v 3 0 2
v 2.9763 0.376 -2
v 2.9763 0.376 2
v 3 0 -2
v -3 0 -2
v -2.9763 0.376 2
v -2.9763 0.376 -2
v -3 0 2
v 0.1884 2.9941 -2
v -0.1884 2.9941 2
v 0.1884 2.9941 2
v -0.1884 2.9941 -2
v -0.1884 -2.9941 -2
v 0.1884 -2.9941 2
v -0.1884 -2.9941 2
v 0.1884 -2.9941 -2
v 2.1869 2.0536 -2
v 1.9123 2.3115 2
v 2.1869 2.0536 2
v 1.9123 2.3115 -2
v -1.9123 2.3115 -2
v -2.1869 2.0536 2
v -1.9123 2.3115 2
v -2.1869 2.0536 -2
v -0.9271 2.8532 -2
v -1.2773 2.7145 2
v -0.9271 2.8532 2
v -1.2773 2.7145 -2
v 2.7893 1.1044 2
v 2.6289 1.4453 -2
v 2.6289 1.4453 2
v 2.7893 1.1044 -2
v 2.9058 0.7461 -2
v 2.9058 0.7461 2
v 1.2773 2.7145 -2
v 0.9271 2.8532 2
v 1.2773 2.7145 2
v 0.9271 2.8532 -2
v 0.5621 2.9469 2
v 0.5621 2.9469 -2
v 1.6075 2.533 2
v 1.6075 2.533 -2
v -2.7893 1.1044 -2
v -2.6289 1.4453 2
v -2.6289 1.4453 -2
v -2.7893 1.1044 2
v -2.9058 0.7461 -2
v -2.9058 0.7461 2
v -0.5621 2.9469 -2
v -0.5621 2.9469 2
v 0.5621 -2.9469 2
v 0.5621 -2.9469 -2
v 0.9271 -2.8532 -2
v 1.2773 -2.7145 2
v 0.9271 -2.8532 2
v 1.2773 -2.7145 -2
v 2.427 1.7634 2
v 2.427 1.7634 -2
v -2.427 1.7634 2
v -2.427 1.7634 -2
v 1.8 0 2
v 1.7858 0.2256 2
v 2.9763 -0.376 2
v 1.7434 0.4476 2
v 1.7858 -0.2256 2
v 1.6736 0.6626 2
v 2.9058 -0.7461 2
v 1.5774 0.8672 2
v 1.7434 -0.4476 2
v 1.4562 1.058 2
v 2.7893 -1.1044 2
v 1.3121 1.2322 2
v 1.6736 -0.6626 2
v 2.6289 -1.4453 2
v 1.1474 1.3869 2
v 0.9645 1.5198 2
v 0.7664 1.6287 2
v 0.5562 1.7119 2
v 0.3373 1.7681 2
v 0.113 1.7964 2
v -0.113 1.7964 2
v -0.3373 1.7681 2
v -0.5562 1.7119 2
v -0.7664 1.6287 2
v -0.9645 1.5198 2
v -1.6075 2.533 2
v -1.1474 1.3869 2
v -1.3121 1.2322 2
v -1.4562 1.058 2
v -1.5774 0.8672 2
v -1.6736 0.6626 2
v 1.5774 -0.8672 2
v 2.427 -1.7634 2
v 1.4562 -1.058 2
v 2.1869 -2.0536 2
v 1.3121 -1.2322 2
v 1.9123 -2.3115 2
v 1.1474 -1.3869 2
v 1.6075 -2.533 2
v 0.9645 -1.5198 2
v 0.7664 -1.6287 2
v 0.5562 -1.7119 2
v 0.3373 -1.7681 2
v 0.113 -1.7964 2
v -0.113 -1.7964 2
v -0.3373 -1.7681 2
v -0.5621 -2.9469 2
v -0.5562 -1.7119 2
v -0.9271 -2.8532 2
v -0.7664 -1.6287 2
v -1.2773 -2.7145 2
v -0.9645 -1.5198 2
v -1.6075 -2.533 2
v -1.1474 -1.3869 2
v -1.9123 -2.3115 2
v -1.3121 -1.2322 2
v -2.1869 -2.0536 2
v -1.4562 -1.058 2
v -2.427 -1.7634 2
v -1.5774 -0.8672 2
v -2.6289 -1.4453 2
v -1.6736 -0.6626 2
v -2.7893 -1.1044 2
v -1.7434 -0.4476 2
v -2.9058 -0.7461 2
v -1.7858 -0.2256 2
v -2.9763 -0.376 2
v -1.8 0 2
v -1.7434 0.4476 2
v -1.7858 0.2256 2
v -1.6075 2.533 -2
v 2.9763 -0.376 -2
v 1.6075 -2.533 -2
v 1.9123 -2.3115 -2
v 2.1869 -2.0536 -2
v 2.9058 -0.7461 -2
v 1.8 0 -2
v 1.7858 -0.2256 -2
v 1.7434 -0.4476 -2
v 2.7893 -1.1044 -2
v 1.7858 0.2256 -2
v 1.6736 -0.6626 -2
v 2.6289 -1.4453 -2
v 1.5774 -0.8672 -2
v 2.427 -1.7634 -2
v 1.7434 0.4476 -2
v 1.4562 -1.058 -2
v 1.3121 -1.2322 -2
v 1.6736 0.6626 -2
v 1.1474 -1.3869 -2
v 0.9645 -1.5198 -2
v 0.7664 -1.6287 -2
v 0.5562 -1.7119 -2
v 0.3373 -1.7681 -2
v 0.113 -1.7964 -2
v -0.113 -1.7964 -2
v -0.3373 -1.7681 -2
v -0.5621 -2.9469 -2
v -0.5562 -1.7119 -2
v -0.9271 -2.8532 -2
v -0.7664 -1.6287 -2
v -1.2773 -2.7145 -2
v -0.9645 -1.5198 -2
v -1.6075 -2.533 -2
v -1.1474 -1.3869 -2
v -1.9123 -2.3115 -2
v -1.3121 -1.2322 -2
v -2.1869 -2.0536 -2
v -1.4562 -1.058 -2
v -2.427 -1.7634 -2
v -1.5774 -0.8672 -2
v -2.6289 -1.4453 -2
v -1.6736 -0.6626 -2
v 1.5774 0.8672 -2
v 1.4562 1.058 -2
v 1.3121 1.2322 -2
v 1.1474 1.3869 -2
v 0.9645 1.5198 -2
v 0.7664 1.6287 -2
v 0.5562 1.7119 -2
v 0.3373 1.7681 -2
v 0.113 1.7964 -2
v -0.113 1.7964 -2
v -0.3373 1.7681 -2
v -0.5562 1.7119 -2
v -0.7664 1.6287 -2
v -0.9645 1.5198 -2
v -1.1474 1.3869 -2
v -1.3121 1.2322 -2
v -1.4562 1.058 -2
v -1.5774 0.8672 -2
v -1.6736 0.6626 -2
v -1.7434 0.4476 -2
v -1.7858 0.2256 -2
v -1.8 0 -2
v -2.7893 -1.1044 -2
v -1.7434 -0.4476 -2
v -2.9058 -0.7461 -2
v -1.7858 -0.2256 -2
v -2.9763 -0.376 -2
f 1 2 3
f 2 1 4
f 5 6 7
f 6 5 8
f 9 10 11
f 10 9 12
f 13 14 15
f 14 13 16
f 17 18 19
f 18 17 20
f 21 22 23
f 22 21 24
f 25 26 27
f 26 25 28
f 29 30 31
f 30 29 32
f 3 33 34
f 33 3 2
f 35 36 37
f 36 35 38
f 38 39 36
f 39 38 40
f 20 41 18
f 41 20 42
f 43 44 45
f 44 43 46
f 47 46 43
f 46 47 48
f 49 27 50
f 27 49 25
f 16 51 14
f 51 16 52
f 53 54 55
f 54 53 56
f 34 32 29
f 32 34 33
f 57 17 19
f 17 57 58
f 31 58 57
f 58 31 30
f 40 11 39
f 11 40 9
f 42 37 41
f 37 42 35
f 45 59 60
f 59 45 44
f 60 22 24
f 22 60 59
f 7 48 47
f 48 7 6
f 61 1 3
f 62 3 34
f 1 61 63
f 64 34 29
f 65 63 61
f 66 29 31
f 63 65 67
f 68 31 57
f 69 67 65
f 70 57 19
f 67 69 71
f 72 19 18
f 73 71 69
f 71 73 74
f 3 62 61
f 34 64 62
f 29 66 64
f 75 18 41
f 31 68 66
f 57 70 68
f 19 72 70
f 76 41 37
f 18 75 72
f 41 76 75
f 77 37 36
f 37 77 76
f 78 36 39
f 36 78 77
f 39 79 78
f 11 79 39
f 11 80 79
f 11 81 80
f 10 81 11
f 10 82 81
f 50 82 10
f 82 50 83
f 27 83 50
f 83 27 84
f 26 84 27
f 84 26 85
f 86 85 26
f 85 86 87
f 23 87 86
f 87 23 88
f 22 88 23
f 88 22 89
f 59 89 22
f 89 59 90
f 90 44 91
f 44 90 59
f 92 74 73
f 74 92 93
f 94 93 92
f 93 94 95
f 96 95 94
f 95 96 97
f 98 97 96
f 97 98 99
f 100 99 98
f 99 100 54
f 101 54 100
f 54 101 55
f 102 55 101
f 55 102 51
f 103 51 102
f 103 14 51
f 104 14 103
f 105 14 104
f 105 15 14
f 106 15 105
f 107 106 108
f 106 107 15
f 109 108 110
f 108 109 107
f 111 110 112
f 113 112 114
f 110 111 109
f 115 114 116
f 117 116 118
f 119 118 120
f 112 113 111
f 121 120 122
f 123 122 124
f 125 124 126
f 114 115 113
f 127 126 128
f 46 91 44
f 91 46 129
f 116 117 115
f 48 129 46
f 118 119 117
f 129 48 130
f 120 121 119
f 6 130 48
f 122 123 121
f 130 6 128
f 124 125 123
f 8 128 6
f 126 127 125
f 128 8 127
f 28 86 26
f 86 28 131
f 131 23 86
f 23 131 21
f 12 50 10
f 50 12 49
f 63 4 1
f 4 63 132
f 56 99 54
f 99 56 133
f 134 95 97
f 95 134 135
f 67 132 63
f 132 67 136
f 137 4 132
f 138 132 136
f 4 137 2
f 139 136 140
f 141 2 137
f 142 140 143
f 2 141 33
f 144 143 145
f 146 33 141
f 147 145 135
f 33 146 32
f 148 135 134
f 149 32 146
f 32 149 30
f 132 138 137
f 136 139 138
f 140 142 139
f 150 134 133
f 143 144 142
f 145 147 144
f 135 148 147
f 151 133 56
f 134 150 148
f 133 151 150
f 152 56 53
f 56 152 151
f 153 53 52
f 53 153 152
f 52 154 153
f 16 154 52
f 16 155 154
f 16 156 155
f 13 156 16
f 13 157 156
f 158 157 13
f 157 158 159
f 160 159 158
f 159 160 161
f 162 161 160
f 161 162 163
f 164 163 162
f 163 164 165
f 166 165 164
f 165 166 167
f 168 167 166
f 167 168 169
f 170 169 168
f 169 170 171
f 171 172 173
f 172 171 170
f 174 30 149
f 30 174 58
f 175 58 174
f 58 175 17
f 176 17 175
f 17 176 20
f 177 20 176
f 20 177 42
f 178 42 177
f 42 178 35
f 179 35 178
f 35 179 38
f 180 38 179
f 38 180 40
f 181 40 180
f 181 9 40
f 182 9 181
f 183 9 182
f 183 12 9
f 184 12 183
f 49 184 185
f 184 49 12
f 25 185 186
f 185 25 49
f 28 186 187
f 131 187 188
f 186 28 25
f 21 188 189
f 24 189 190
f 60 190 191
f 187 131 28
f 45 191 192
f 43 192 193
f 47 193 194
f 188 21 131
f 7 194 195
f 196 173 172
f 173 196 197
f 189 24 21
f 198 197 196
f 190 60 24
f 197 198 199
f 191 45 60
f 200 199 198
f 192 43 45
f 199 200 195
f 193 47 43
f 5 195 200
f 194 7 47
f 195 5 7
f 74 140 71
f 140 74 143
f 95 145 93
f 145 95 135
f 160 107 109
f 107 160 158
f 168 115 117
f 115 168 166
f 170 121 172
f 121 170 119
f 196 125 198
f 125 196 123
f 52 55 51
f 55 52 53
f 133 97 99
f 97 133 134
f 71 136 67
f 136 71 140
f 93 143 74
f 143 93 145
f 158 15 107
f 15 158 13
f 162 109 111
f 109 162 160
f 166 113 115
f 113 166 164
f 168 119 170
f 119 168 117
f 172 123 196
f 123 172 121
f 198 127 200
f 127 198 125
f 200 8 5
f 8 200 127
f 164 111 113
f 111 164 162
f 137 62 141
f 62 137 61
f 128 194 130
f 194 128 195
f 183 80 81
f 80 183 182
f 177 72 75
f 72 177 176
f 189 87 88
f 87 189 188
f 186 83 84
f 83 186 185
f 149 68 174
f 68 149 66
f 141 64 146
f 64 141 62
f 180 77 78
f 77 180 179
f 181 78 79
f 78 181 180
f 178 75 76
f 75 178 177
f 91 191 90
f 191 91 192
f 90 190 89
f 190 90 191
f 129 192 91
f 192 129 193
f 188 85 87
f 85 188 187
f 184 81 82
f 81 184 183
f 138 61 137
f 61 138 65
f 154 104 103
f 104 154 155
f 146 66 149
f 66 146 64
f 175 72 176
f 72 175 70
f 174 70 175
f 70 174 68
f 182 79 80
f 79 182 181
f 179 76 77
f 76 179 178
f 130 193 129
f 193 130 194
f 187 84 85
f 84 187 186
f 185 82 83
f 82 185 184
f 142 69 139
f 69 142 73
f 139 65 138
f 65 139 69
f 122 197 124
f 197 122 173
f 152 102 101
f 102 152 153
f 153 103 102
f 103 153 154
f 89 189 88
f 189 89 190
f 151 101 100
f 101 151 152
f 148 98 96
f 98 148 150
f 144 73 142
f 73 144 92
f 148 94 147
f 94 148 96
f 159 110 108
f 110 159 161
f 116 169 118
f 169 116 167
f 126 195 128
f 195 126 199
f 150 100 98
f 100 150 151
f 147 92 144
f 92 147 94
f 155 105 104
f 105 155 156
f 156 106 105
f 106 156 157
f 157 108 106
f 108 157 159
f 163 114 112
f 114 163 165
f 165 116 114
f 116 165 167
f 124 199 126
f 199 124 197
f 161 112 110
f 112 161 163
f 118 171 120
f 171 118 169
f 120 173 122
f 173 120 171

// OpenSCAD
$fn = 50;


difference() {
	union() {
		translate(v = [0, 0, -2.0000000000]) {
			cylinder(h = 4, r = 3.0000000000);
		}
	}
	union() {
		translate(v = [0, 0, -100.0000000000]) {
			cylinder(h = 200, r = 1.8000000000);
		}
	}
}
